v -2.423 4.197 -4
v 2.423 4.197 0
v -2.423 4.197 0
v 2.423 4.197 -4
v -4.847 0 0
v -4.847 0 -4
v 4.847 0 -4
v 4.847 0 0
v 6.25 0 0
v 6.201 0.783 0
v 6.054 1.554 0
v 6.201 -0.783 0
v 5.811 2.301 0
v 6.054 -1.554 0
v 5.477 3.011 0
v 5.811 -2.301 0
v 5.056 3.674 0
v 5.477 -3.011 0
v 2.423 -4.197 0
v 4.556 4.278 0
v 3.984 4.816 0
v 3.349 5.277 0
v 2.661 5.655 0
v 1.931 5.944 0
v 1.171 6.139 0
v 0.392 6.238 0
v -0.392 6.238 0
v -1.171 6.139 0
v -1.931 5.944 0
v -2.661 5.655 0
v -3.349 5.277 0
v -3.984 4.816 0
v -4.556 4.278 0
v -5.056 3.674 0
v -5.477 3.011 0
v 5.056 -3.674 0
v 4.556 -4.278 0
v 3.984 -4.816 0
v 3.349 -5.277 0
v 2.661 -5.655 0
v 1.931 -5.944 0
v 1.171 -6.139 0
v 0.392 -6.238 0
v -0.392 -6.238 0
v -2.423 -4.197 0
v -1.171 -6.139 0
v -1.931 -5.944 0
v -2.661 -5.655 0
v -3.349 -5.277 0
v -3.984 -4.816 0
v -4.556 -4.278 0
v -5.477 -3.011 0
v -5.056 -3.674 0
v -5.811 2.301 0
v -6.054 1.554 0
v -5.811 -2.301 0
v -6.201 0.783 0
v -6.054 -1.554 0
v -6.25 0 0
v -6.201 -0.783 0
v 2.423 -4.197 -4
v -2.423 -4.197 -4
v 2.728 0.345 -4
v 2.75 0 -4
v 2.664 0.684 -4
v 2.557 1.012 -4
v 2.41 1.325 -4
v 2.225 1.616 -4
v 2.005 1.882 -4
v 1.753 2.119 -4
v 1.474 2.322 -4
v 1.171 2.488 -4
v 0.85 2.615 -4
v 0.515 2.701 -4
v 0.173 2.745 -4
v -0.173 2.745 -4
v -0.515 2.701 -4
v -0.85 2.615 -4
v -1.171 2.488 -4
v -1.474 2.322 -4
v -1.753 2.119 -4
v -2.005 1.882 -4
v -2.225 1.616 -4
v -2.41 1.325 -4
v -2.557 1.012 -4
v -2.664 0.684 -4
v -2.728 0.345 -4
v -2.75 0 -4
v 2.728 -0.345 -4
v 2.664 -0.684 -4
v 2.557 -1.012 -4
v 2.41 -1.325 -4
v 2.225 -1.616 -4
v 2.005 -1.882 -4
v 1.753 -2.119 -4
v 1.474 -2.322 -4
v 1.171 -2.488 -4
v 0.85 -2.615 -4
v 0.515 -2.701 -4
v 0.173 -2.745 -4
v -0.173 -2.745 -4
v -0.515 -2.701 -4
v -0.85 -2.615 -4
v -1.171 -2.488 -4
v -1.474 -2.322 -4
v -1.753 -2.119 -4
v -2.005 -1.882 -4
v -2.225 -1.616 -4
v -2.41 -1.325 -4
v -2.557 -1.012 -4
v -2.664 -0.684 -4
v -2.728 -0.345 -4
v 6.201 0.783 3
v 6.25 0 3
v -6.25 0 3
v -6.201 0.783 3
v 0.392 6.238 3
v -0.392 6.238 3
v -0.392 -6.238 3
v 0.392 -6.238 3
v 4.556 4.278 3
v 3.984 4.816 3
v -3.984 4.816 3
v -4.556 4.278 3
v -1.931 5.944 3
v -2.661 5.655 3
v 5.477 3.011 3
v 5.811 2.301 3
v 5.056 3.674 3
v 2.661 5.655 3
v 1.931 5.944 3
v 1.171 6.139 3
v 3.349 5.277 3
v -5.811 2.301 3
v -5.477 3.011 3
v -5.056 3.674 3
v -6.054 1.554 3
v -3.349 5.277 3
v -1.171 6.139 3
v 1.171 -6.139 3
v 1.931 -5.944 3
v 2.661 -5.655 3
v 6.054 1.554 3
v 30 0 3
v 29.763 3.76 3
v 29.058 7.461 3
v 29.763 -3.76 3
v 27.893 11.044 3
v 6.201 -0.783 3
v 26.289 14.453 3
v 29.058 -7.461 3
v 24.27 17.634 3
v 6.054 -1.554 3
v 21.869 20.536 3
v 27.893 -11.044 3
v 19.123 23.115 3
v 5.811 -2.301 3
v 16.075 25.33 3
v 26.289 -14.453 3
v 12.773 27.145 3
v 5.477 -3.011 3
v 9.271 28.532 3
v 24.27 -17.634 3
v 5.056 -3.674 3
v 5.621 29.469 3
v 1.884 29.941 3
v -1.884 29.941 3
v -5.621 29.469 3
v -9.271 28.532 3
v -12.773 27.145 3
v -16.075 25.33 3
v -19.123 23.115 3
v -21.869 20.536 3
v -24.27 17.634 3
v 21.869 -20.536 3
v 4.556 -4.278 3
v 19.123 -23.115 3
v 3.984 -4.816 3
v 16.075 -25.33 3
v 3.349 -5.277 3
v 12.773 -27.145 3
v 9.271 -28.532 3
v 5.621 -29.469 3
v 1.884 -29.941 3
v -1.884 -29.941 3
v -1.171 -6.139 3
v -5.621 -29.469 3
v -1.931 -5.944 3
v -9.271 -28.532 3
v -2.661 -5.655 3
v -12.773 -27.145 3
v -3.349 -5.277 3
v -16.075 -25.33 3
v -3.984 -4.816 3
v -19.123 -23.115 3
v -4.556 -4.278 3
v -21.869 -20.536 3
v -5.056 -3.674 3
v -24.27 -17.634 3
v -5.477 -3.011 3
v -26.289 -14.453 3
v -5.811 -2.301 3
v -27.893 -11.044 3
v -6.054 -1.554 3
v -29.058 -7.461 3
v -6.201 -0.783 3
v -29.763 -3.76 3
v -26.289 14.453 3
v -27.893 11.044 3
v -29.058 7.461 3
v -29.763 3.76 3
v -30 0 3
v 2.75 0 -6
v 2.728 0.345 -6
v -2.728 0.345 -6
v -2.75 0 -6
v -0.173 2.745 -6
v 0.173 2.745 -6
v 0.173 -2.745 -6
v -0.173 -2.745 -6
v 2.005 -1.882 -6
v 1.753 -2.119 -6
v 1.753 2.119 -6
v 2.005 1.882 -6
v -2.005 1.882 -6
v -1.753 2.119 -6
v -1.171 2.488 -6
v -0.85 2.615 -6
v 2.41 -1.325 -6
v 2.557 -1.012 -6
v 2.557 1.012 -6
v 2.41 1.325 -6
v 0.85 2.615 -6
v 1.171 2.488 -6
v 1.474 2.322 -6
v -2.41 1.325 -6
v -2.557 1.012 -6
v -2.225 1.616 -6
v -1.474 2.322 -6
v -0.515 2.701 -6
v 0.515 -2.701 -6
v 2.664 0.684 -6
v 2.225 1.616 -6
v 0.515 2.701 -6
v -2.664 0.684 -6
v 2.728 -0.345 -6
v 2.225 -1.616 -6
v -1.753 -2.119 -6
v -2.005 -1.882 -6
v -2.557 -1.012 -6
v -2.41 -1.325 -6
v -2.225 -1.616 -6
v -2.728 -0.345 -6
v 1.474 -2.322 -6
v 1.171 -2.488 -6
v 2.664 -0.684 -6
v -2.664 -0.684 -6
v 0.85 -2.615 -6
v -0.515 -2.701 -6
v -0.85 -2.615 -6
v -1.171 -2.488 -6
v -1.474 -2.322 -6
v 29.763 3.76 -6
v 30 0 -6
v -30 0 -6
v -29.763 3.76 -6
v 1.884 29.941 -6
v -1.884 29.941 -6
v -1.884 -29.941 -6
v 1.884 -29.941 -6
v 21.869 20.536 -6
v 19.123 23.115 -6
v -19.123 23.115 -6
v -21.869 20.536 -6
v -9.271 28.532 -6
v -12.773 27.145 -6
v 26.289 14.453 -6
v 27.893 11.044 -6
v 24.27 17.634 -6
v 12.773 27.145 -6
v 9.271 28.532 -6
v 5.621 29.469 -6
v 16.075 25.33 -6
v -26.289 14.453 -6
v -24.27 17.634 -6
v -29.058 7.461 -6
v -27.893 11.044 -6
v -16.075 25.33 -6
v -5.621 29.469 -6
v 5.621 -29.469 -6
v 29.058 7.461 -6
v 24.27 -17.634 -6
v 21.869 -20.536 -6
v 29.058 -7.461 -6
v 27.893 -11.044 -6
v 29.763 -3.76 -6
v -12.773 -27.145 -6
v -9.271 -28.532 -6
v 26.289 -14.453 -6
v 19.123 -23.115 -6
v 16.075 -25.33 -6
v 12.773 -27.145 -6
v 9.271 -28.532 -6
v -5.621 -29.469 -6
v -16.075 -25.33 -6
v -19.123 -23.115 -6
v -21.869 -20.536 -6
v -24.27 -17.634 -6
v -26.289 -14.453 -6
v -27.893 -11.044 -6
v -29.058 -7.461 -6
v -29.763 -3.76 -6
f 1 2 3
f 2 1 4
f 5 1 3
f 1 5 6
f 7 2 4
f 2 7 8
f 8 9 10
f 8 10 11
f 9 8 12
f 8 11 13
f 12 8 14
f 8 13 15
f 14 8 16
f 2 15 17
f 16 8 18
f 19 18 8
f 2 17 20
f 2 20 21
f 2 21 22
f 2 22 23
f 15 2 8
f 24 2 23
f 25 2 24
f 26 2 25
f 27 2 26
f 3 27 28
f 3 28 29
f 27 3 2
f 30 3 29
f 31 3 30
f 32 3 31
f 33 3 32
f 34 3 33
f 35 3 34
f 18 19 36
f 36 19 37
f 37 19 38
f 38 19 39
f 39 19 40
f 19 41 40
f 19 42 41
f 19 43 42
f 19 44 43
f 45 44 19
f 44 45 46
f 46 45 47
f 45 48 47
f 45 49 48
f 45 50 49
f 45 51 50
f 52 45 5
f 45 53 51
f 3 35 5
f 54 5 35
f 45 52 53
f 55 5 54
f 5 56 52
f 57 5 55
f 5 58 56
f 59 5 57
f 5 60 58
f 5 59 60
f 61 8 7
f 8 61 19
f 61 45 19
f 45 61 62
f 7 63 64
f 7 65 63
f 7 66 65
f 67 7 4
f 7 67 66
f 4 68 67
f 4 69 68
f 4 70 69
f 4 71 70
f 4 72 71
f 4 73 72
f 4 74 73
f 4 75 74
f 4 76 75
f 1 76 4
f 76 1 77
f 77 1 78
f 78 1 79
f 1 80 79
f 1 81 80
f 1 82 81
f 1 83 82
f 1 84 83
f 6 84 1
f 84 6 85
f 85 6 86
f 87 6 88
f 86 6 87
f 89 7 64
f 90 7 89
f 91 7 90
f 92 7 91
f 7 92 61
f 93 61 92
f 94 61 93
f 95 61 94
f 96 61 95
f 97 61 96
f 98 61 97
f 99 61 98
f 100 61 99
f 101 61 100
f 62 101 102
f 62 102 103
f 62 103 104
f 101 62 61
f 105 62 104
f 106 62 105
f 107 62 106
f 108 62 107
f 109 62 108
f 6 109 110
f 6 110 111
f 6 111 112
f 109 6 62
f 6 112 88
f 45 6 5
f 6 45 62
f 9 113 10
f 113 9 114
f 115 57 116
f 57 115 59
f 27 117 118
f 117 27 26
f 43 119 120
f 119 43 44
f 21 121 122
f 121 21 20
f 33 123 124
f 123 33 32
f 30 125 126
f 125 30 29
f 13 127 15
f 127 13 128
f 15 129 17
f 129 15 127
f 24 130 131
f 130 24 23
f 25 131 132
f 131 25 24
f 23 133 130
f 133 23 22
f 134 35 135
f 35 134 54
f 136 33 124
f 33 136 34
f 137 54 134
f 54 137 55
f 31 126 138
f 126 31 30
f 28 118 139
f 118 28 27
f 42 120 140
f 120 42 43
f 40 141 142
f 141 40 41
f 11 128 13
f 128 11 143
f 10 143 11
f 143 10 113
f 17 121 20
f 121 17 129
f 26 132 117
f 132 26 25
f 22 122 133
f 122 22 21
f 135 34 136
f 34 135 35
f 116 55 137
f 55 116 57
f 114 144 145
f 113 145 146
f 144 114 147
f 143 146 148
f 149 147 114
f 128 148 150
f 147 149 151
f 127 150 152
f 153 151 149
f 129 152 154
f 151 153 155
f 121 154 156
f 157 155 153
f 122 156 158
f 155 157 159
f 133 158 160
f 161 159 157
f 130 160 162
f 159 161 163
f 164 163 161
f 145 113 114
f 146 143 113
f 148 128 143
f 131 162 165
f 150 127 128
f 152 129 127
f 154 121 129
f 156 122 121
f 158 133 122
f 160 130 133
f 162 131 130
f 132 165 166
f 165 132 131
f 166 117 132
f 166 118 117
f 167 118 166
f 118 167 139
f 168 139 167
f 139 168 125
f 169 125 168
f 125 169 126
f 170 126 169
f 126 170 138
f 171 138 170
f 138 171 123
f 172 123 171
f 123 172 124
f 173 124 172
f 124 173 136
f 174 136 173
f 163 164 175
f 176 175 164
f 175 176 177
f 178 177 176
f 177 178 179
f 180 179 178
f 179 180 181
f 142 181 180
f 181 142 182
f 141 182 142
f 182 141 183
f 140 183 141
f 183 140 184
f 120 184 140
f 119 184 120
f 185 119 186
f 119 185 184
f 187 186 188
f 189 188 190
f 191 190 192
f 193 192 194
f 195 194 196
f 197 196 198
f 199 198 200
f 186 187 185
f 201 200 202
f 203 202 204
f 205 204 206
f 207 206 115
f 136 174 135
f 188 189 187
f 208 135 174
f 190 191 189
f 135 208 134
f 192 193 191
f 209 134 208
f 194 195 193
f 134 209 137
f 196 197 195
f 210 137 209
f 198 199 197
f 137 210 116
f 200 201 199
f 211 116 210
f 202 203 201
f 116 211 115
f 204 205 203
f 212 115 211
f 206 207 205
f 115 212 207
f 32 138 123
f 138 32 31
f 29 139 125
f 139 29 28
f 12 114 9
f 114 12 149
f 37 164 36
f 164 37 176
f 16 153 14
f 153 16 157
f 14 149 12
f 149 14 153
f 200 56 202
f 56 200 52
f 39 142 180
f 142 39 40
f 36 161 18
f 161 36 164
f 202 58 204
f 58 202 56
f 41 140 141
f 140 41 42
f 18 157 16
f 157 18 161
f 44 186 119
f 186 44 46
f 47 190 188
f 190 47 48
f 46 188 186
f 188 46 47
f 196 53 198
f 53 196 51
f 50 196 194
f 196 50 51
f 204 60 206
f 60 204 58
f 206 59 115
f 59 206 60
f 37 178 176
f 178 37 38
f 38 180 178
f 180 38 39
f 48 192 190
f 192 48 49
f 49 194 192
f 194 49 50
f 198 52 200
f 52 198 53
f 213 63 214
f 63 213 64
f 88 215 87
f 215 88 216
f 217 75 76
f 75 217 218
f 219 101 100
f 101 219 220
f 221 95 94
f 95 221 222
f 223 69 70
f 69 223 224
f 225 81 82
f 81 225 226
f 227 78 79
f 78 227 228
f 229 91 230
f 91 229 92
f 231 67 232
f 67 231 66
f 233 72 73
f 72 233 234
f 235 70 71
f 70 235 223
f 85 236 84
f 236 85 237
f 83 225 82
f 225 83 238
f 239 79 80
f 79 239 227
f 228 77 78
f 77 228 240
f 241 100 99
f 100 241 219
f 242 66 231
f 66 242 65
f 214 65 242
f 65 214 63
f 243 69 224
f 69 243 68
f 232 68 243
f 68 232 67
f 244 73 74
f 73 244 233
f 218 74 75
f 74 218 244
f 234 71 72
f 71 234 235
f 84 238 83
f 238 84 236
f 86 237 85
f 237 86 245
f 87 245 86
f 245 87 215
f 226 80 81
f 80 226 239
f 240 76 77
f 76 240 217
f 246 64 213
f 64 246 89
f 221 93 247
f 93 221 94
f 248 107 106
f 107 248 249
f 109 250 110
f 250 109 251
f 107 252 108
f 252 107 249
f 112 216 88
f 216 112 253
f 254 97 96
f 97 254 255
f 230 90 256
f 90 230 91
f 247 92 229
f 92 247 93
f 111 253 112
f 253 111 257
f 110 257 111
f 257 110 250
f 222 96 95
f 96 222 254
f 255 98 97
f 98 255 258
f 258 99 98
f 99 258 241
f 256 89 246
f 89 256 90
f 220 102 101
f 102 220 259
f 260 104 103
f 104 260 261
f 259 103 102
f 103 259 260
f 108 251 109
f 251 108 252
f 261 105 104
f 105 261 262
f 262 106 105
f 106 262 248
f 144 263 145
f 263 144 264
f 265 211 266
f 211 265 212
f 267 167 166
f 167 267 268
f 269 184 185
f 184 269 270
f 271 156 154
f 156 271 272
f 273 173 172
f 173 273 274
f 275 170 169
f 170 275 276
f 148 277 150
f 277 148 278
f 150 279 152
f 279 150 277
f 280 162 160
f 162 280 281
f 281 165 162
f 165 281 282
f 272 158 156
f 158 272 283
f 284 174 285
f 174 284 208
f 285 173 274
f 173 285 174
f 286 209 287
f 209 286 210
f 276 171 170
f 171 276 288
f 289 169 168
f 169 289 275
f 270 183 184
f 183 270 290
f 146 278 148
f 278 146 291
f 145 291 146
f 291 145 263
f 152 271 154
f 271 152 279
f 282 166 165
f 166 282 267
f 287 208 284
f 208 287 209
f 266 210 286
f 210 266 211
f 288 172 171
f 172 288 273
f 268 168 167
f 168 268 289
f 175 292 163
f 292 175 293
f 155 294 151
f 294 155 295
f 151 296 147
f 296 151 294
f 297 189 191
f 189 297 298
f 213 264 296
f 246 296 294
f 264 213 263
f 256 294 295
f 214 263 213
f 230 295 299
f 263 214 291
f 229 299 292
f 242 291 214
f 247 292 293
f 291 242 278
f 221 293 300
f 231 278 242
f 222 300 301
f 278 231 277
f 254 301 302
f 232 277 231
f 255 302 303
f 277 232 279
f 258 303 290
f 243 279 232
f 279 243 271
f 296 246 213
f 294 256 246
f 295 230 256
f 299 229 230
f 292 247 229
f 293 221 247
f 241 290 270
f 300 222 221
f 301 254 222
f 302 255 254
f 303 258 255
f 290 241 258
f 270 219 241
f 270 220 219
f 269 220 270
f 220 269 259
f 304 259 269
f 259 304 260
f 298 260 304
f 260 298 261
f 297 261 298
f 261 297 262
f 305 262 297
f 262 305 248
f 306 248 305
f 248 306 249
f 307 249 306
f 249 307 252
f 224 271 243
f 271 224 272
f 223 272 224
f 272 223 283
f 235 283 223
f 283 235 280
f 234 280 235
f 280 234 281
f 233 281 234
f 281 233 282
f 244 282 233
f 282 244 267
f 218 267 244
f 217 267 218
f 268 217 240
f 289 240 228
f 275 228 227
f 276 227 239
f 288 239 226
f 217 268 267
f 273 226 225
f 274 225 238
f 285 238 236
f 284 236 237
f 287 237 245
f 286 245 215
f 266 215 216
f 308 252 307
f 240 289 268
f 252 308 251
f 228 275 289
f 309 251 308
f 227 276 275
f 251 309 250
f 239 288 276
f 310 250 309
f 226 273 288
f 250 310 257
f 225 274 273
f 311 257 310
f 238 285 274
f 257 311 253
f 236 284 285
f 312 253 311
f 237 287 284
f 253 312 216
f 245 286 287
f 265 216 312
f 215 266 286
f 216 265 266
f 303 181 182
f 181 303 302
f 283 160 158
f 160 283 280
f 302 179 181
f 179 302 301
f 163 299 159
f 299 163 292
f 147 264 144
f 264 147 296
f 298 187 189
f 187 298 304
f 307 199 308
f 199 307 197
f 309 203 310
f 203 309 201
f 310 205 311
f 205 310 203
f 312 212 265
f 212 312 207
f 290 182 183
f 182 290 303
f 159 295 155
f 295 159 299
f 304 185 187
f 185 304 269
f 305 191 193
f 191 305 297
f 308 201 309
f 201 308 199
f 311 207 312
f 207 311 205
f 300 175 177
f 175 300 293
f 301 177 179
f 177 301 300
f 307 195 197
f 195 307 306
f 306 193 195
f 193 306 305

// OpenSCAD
$fn = 50;

difference() {
	union() {
		translate(v = [0, 0, -6.0]) {
			cylinder(h = 9.0, r = 30.0);
		}
	}
	union() {
		translate(v = [0, 0, 0]) {
			rotate(a = [0, 0, 0]) {
				difference() {
					union() {
						translate(v = [0, 0, -4]) {
							linear_extrude(height = 4) {
								polygon(points = [[4.8468, 0.0], [2.4234000000000004, 4.197451927062417], [-2.423399999999999, 4.197451927062417], [-4.8468, 5.935618106107392e-16], [-2.423400000000002, -4.197451927062416], [2.423399999999997, -4.197451927062419]]);
							}
						}
					}
					union();
				}
			}
		}
		#cylinder(h = 3, r = 6.25);
		#translate(v = [0, 0, -100.0]) {
			cylinder(h = 200, r = 2.75);
		}
	}
}
